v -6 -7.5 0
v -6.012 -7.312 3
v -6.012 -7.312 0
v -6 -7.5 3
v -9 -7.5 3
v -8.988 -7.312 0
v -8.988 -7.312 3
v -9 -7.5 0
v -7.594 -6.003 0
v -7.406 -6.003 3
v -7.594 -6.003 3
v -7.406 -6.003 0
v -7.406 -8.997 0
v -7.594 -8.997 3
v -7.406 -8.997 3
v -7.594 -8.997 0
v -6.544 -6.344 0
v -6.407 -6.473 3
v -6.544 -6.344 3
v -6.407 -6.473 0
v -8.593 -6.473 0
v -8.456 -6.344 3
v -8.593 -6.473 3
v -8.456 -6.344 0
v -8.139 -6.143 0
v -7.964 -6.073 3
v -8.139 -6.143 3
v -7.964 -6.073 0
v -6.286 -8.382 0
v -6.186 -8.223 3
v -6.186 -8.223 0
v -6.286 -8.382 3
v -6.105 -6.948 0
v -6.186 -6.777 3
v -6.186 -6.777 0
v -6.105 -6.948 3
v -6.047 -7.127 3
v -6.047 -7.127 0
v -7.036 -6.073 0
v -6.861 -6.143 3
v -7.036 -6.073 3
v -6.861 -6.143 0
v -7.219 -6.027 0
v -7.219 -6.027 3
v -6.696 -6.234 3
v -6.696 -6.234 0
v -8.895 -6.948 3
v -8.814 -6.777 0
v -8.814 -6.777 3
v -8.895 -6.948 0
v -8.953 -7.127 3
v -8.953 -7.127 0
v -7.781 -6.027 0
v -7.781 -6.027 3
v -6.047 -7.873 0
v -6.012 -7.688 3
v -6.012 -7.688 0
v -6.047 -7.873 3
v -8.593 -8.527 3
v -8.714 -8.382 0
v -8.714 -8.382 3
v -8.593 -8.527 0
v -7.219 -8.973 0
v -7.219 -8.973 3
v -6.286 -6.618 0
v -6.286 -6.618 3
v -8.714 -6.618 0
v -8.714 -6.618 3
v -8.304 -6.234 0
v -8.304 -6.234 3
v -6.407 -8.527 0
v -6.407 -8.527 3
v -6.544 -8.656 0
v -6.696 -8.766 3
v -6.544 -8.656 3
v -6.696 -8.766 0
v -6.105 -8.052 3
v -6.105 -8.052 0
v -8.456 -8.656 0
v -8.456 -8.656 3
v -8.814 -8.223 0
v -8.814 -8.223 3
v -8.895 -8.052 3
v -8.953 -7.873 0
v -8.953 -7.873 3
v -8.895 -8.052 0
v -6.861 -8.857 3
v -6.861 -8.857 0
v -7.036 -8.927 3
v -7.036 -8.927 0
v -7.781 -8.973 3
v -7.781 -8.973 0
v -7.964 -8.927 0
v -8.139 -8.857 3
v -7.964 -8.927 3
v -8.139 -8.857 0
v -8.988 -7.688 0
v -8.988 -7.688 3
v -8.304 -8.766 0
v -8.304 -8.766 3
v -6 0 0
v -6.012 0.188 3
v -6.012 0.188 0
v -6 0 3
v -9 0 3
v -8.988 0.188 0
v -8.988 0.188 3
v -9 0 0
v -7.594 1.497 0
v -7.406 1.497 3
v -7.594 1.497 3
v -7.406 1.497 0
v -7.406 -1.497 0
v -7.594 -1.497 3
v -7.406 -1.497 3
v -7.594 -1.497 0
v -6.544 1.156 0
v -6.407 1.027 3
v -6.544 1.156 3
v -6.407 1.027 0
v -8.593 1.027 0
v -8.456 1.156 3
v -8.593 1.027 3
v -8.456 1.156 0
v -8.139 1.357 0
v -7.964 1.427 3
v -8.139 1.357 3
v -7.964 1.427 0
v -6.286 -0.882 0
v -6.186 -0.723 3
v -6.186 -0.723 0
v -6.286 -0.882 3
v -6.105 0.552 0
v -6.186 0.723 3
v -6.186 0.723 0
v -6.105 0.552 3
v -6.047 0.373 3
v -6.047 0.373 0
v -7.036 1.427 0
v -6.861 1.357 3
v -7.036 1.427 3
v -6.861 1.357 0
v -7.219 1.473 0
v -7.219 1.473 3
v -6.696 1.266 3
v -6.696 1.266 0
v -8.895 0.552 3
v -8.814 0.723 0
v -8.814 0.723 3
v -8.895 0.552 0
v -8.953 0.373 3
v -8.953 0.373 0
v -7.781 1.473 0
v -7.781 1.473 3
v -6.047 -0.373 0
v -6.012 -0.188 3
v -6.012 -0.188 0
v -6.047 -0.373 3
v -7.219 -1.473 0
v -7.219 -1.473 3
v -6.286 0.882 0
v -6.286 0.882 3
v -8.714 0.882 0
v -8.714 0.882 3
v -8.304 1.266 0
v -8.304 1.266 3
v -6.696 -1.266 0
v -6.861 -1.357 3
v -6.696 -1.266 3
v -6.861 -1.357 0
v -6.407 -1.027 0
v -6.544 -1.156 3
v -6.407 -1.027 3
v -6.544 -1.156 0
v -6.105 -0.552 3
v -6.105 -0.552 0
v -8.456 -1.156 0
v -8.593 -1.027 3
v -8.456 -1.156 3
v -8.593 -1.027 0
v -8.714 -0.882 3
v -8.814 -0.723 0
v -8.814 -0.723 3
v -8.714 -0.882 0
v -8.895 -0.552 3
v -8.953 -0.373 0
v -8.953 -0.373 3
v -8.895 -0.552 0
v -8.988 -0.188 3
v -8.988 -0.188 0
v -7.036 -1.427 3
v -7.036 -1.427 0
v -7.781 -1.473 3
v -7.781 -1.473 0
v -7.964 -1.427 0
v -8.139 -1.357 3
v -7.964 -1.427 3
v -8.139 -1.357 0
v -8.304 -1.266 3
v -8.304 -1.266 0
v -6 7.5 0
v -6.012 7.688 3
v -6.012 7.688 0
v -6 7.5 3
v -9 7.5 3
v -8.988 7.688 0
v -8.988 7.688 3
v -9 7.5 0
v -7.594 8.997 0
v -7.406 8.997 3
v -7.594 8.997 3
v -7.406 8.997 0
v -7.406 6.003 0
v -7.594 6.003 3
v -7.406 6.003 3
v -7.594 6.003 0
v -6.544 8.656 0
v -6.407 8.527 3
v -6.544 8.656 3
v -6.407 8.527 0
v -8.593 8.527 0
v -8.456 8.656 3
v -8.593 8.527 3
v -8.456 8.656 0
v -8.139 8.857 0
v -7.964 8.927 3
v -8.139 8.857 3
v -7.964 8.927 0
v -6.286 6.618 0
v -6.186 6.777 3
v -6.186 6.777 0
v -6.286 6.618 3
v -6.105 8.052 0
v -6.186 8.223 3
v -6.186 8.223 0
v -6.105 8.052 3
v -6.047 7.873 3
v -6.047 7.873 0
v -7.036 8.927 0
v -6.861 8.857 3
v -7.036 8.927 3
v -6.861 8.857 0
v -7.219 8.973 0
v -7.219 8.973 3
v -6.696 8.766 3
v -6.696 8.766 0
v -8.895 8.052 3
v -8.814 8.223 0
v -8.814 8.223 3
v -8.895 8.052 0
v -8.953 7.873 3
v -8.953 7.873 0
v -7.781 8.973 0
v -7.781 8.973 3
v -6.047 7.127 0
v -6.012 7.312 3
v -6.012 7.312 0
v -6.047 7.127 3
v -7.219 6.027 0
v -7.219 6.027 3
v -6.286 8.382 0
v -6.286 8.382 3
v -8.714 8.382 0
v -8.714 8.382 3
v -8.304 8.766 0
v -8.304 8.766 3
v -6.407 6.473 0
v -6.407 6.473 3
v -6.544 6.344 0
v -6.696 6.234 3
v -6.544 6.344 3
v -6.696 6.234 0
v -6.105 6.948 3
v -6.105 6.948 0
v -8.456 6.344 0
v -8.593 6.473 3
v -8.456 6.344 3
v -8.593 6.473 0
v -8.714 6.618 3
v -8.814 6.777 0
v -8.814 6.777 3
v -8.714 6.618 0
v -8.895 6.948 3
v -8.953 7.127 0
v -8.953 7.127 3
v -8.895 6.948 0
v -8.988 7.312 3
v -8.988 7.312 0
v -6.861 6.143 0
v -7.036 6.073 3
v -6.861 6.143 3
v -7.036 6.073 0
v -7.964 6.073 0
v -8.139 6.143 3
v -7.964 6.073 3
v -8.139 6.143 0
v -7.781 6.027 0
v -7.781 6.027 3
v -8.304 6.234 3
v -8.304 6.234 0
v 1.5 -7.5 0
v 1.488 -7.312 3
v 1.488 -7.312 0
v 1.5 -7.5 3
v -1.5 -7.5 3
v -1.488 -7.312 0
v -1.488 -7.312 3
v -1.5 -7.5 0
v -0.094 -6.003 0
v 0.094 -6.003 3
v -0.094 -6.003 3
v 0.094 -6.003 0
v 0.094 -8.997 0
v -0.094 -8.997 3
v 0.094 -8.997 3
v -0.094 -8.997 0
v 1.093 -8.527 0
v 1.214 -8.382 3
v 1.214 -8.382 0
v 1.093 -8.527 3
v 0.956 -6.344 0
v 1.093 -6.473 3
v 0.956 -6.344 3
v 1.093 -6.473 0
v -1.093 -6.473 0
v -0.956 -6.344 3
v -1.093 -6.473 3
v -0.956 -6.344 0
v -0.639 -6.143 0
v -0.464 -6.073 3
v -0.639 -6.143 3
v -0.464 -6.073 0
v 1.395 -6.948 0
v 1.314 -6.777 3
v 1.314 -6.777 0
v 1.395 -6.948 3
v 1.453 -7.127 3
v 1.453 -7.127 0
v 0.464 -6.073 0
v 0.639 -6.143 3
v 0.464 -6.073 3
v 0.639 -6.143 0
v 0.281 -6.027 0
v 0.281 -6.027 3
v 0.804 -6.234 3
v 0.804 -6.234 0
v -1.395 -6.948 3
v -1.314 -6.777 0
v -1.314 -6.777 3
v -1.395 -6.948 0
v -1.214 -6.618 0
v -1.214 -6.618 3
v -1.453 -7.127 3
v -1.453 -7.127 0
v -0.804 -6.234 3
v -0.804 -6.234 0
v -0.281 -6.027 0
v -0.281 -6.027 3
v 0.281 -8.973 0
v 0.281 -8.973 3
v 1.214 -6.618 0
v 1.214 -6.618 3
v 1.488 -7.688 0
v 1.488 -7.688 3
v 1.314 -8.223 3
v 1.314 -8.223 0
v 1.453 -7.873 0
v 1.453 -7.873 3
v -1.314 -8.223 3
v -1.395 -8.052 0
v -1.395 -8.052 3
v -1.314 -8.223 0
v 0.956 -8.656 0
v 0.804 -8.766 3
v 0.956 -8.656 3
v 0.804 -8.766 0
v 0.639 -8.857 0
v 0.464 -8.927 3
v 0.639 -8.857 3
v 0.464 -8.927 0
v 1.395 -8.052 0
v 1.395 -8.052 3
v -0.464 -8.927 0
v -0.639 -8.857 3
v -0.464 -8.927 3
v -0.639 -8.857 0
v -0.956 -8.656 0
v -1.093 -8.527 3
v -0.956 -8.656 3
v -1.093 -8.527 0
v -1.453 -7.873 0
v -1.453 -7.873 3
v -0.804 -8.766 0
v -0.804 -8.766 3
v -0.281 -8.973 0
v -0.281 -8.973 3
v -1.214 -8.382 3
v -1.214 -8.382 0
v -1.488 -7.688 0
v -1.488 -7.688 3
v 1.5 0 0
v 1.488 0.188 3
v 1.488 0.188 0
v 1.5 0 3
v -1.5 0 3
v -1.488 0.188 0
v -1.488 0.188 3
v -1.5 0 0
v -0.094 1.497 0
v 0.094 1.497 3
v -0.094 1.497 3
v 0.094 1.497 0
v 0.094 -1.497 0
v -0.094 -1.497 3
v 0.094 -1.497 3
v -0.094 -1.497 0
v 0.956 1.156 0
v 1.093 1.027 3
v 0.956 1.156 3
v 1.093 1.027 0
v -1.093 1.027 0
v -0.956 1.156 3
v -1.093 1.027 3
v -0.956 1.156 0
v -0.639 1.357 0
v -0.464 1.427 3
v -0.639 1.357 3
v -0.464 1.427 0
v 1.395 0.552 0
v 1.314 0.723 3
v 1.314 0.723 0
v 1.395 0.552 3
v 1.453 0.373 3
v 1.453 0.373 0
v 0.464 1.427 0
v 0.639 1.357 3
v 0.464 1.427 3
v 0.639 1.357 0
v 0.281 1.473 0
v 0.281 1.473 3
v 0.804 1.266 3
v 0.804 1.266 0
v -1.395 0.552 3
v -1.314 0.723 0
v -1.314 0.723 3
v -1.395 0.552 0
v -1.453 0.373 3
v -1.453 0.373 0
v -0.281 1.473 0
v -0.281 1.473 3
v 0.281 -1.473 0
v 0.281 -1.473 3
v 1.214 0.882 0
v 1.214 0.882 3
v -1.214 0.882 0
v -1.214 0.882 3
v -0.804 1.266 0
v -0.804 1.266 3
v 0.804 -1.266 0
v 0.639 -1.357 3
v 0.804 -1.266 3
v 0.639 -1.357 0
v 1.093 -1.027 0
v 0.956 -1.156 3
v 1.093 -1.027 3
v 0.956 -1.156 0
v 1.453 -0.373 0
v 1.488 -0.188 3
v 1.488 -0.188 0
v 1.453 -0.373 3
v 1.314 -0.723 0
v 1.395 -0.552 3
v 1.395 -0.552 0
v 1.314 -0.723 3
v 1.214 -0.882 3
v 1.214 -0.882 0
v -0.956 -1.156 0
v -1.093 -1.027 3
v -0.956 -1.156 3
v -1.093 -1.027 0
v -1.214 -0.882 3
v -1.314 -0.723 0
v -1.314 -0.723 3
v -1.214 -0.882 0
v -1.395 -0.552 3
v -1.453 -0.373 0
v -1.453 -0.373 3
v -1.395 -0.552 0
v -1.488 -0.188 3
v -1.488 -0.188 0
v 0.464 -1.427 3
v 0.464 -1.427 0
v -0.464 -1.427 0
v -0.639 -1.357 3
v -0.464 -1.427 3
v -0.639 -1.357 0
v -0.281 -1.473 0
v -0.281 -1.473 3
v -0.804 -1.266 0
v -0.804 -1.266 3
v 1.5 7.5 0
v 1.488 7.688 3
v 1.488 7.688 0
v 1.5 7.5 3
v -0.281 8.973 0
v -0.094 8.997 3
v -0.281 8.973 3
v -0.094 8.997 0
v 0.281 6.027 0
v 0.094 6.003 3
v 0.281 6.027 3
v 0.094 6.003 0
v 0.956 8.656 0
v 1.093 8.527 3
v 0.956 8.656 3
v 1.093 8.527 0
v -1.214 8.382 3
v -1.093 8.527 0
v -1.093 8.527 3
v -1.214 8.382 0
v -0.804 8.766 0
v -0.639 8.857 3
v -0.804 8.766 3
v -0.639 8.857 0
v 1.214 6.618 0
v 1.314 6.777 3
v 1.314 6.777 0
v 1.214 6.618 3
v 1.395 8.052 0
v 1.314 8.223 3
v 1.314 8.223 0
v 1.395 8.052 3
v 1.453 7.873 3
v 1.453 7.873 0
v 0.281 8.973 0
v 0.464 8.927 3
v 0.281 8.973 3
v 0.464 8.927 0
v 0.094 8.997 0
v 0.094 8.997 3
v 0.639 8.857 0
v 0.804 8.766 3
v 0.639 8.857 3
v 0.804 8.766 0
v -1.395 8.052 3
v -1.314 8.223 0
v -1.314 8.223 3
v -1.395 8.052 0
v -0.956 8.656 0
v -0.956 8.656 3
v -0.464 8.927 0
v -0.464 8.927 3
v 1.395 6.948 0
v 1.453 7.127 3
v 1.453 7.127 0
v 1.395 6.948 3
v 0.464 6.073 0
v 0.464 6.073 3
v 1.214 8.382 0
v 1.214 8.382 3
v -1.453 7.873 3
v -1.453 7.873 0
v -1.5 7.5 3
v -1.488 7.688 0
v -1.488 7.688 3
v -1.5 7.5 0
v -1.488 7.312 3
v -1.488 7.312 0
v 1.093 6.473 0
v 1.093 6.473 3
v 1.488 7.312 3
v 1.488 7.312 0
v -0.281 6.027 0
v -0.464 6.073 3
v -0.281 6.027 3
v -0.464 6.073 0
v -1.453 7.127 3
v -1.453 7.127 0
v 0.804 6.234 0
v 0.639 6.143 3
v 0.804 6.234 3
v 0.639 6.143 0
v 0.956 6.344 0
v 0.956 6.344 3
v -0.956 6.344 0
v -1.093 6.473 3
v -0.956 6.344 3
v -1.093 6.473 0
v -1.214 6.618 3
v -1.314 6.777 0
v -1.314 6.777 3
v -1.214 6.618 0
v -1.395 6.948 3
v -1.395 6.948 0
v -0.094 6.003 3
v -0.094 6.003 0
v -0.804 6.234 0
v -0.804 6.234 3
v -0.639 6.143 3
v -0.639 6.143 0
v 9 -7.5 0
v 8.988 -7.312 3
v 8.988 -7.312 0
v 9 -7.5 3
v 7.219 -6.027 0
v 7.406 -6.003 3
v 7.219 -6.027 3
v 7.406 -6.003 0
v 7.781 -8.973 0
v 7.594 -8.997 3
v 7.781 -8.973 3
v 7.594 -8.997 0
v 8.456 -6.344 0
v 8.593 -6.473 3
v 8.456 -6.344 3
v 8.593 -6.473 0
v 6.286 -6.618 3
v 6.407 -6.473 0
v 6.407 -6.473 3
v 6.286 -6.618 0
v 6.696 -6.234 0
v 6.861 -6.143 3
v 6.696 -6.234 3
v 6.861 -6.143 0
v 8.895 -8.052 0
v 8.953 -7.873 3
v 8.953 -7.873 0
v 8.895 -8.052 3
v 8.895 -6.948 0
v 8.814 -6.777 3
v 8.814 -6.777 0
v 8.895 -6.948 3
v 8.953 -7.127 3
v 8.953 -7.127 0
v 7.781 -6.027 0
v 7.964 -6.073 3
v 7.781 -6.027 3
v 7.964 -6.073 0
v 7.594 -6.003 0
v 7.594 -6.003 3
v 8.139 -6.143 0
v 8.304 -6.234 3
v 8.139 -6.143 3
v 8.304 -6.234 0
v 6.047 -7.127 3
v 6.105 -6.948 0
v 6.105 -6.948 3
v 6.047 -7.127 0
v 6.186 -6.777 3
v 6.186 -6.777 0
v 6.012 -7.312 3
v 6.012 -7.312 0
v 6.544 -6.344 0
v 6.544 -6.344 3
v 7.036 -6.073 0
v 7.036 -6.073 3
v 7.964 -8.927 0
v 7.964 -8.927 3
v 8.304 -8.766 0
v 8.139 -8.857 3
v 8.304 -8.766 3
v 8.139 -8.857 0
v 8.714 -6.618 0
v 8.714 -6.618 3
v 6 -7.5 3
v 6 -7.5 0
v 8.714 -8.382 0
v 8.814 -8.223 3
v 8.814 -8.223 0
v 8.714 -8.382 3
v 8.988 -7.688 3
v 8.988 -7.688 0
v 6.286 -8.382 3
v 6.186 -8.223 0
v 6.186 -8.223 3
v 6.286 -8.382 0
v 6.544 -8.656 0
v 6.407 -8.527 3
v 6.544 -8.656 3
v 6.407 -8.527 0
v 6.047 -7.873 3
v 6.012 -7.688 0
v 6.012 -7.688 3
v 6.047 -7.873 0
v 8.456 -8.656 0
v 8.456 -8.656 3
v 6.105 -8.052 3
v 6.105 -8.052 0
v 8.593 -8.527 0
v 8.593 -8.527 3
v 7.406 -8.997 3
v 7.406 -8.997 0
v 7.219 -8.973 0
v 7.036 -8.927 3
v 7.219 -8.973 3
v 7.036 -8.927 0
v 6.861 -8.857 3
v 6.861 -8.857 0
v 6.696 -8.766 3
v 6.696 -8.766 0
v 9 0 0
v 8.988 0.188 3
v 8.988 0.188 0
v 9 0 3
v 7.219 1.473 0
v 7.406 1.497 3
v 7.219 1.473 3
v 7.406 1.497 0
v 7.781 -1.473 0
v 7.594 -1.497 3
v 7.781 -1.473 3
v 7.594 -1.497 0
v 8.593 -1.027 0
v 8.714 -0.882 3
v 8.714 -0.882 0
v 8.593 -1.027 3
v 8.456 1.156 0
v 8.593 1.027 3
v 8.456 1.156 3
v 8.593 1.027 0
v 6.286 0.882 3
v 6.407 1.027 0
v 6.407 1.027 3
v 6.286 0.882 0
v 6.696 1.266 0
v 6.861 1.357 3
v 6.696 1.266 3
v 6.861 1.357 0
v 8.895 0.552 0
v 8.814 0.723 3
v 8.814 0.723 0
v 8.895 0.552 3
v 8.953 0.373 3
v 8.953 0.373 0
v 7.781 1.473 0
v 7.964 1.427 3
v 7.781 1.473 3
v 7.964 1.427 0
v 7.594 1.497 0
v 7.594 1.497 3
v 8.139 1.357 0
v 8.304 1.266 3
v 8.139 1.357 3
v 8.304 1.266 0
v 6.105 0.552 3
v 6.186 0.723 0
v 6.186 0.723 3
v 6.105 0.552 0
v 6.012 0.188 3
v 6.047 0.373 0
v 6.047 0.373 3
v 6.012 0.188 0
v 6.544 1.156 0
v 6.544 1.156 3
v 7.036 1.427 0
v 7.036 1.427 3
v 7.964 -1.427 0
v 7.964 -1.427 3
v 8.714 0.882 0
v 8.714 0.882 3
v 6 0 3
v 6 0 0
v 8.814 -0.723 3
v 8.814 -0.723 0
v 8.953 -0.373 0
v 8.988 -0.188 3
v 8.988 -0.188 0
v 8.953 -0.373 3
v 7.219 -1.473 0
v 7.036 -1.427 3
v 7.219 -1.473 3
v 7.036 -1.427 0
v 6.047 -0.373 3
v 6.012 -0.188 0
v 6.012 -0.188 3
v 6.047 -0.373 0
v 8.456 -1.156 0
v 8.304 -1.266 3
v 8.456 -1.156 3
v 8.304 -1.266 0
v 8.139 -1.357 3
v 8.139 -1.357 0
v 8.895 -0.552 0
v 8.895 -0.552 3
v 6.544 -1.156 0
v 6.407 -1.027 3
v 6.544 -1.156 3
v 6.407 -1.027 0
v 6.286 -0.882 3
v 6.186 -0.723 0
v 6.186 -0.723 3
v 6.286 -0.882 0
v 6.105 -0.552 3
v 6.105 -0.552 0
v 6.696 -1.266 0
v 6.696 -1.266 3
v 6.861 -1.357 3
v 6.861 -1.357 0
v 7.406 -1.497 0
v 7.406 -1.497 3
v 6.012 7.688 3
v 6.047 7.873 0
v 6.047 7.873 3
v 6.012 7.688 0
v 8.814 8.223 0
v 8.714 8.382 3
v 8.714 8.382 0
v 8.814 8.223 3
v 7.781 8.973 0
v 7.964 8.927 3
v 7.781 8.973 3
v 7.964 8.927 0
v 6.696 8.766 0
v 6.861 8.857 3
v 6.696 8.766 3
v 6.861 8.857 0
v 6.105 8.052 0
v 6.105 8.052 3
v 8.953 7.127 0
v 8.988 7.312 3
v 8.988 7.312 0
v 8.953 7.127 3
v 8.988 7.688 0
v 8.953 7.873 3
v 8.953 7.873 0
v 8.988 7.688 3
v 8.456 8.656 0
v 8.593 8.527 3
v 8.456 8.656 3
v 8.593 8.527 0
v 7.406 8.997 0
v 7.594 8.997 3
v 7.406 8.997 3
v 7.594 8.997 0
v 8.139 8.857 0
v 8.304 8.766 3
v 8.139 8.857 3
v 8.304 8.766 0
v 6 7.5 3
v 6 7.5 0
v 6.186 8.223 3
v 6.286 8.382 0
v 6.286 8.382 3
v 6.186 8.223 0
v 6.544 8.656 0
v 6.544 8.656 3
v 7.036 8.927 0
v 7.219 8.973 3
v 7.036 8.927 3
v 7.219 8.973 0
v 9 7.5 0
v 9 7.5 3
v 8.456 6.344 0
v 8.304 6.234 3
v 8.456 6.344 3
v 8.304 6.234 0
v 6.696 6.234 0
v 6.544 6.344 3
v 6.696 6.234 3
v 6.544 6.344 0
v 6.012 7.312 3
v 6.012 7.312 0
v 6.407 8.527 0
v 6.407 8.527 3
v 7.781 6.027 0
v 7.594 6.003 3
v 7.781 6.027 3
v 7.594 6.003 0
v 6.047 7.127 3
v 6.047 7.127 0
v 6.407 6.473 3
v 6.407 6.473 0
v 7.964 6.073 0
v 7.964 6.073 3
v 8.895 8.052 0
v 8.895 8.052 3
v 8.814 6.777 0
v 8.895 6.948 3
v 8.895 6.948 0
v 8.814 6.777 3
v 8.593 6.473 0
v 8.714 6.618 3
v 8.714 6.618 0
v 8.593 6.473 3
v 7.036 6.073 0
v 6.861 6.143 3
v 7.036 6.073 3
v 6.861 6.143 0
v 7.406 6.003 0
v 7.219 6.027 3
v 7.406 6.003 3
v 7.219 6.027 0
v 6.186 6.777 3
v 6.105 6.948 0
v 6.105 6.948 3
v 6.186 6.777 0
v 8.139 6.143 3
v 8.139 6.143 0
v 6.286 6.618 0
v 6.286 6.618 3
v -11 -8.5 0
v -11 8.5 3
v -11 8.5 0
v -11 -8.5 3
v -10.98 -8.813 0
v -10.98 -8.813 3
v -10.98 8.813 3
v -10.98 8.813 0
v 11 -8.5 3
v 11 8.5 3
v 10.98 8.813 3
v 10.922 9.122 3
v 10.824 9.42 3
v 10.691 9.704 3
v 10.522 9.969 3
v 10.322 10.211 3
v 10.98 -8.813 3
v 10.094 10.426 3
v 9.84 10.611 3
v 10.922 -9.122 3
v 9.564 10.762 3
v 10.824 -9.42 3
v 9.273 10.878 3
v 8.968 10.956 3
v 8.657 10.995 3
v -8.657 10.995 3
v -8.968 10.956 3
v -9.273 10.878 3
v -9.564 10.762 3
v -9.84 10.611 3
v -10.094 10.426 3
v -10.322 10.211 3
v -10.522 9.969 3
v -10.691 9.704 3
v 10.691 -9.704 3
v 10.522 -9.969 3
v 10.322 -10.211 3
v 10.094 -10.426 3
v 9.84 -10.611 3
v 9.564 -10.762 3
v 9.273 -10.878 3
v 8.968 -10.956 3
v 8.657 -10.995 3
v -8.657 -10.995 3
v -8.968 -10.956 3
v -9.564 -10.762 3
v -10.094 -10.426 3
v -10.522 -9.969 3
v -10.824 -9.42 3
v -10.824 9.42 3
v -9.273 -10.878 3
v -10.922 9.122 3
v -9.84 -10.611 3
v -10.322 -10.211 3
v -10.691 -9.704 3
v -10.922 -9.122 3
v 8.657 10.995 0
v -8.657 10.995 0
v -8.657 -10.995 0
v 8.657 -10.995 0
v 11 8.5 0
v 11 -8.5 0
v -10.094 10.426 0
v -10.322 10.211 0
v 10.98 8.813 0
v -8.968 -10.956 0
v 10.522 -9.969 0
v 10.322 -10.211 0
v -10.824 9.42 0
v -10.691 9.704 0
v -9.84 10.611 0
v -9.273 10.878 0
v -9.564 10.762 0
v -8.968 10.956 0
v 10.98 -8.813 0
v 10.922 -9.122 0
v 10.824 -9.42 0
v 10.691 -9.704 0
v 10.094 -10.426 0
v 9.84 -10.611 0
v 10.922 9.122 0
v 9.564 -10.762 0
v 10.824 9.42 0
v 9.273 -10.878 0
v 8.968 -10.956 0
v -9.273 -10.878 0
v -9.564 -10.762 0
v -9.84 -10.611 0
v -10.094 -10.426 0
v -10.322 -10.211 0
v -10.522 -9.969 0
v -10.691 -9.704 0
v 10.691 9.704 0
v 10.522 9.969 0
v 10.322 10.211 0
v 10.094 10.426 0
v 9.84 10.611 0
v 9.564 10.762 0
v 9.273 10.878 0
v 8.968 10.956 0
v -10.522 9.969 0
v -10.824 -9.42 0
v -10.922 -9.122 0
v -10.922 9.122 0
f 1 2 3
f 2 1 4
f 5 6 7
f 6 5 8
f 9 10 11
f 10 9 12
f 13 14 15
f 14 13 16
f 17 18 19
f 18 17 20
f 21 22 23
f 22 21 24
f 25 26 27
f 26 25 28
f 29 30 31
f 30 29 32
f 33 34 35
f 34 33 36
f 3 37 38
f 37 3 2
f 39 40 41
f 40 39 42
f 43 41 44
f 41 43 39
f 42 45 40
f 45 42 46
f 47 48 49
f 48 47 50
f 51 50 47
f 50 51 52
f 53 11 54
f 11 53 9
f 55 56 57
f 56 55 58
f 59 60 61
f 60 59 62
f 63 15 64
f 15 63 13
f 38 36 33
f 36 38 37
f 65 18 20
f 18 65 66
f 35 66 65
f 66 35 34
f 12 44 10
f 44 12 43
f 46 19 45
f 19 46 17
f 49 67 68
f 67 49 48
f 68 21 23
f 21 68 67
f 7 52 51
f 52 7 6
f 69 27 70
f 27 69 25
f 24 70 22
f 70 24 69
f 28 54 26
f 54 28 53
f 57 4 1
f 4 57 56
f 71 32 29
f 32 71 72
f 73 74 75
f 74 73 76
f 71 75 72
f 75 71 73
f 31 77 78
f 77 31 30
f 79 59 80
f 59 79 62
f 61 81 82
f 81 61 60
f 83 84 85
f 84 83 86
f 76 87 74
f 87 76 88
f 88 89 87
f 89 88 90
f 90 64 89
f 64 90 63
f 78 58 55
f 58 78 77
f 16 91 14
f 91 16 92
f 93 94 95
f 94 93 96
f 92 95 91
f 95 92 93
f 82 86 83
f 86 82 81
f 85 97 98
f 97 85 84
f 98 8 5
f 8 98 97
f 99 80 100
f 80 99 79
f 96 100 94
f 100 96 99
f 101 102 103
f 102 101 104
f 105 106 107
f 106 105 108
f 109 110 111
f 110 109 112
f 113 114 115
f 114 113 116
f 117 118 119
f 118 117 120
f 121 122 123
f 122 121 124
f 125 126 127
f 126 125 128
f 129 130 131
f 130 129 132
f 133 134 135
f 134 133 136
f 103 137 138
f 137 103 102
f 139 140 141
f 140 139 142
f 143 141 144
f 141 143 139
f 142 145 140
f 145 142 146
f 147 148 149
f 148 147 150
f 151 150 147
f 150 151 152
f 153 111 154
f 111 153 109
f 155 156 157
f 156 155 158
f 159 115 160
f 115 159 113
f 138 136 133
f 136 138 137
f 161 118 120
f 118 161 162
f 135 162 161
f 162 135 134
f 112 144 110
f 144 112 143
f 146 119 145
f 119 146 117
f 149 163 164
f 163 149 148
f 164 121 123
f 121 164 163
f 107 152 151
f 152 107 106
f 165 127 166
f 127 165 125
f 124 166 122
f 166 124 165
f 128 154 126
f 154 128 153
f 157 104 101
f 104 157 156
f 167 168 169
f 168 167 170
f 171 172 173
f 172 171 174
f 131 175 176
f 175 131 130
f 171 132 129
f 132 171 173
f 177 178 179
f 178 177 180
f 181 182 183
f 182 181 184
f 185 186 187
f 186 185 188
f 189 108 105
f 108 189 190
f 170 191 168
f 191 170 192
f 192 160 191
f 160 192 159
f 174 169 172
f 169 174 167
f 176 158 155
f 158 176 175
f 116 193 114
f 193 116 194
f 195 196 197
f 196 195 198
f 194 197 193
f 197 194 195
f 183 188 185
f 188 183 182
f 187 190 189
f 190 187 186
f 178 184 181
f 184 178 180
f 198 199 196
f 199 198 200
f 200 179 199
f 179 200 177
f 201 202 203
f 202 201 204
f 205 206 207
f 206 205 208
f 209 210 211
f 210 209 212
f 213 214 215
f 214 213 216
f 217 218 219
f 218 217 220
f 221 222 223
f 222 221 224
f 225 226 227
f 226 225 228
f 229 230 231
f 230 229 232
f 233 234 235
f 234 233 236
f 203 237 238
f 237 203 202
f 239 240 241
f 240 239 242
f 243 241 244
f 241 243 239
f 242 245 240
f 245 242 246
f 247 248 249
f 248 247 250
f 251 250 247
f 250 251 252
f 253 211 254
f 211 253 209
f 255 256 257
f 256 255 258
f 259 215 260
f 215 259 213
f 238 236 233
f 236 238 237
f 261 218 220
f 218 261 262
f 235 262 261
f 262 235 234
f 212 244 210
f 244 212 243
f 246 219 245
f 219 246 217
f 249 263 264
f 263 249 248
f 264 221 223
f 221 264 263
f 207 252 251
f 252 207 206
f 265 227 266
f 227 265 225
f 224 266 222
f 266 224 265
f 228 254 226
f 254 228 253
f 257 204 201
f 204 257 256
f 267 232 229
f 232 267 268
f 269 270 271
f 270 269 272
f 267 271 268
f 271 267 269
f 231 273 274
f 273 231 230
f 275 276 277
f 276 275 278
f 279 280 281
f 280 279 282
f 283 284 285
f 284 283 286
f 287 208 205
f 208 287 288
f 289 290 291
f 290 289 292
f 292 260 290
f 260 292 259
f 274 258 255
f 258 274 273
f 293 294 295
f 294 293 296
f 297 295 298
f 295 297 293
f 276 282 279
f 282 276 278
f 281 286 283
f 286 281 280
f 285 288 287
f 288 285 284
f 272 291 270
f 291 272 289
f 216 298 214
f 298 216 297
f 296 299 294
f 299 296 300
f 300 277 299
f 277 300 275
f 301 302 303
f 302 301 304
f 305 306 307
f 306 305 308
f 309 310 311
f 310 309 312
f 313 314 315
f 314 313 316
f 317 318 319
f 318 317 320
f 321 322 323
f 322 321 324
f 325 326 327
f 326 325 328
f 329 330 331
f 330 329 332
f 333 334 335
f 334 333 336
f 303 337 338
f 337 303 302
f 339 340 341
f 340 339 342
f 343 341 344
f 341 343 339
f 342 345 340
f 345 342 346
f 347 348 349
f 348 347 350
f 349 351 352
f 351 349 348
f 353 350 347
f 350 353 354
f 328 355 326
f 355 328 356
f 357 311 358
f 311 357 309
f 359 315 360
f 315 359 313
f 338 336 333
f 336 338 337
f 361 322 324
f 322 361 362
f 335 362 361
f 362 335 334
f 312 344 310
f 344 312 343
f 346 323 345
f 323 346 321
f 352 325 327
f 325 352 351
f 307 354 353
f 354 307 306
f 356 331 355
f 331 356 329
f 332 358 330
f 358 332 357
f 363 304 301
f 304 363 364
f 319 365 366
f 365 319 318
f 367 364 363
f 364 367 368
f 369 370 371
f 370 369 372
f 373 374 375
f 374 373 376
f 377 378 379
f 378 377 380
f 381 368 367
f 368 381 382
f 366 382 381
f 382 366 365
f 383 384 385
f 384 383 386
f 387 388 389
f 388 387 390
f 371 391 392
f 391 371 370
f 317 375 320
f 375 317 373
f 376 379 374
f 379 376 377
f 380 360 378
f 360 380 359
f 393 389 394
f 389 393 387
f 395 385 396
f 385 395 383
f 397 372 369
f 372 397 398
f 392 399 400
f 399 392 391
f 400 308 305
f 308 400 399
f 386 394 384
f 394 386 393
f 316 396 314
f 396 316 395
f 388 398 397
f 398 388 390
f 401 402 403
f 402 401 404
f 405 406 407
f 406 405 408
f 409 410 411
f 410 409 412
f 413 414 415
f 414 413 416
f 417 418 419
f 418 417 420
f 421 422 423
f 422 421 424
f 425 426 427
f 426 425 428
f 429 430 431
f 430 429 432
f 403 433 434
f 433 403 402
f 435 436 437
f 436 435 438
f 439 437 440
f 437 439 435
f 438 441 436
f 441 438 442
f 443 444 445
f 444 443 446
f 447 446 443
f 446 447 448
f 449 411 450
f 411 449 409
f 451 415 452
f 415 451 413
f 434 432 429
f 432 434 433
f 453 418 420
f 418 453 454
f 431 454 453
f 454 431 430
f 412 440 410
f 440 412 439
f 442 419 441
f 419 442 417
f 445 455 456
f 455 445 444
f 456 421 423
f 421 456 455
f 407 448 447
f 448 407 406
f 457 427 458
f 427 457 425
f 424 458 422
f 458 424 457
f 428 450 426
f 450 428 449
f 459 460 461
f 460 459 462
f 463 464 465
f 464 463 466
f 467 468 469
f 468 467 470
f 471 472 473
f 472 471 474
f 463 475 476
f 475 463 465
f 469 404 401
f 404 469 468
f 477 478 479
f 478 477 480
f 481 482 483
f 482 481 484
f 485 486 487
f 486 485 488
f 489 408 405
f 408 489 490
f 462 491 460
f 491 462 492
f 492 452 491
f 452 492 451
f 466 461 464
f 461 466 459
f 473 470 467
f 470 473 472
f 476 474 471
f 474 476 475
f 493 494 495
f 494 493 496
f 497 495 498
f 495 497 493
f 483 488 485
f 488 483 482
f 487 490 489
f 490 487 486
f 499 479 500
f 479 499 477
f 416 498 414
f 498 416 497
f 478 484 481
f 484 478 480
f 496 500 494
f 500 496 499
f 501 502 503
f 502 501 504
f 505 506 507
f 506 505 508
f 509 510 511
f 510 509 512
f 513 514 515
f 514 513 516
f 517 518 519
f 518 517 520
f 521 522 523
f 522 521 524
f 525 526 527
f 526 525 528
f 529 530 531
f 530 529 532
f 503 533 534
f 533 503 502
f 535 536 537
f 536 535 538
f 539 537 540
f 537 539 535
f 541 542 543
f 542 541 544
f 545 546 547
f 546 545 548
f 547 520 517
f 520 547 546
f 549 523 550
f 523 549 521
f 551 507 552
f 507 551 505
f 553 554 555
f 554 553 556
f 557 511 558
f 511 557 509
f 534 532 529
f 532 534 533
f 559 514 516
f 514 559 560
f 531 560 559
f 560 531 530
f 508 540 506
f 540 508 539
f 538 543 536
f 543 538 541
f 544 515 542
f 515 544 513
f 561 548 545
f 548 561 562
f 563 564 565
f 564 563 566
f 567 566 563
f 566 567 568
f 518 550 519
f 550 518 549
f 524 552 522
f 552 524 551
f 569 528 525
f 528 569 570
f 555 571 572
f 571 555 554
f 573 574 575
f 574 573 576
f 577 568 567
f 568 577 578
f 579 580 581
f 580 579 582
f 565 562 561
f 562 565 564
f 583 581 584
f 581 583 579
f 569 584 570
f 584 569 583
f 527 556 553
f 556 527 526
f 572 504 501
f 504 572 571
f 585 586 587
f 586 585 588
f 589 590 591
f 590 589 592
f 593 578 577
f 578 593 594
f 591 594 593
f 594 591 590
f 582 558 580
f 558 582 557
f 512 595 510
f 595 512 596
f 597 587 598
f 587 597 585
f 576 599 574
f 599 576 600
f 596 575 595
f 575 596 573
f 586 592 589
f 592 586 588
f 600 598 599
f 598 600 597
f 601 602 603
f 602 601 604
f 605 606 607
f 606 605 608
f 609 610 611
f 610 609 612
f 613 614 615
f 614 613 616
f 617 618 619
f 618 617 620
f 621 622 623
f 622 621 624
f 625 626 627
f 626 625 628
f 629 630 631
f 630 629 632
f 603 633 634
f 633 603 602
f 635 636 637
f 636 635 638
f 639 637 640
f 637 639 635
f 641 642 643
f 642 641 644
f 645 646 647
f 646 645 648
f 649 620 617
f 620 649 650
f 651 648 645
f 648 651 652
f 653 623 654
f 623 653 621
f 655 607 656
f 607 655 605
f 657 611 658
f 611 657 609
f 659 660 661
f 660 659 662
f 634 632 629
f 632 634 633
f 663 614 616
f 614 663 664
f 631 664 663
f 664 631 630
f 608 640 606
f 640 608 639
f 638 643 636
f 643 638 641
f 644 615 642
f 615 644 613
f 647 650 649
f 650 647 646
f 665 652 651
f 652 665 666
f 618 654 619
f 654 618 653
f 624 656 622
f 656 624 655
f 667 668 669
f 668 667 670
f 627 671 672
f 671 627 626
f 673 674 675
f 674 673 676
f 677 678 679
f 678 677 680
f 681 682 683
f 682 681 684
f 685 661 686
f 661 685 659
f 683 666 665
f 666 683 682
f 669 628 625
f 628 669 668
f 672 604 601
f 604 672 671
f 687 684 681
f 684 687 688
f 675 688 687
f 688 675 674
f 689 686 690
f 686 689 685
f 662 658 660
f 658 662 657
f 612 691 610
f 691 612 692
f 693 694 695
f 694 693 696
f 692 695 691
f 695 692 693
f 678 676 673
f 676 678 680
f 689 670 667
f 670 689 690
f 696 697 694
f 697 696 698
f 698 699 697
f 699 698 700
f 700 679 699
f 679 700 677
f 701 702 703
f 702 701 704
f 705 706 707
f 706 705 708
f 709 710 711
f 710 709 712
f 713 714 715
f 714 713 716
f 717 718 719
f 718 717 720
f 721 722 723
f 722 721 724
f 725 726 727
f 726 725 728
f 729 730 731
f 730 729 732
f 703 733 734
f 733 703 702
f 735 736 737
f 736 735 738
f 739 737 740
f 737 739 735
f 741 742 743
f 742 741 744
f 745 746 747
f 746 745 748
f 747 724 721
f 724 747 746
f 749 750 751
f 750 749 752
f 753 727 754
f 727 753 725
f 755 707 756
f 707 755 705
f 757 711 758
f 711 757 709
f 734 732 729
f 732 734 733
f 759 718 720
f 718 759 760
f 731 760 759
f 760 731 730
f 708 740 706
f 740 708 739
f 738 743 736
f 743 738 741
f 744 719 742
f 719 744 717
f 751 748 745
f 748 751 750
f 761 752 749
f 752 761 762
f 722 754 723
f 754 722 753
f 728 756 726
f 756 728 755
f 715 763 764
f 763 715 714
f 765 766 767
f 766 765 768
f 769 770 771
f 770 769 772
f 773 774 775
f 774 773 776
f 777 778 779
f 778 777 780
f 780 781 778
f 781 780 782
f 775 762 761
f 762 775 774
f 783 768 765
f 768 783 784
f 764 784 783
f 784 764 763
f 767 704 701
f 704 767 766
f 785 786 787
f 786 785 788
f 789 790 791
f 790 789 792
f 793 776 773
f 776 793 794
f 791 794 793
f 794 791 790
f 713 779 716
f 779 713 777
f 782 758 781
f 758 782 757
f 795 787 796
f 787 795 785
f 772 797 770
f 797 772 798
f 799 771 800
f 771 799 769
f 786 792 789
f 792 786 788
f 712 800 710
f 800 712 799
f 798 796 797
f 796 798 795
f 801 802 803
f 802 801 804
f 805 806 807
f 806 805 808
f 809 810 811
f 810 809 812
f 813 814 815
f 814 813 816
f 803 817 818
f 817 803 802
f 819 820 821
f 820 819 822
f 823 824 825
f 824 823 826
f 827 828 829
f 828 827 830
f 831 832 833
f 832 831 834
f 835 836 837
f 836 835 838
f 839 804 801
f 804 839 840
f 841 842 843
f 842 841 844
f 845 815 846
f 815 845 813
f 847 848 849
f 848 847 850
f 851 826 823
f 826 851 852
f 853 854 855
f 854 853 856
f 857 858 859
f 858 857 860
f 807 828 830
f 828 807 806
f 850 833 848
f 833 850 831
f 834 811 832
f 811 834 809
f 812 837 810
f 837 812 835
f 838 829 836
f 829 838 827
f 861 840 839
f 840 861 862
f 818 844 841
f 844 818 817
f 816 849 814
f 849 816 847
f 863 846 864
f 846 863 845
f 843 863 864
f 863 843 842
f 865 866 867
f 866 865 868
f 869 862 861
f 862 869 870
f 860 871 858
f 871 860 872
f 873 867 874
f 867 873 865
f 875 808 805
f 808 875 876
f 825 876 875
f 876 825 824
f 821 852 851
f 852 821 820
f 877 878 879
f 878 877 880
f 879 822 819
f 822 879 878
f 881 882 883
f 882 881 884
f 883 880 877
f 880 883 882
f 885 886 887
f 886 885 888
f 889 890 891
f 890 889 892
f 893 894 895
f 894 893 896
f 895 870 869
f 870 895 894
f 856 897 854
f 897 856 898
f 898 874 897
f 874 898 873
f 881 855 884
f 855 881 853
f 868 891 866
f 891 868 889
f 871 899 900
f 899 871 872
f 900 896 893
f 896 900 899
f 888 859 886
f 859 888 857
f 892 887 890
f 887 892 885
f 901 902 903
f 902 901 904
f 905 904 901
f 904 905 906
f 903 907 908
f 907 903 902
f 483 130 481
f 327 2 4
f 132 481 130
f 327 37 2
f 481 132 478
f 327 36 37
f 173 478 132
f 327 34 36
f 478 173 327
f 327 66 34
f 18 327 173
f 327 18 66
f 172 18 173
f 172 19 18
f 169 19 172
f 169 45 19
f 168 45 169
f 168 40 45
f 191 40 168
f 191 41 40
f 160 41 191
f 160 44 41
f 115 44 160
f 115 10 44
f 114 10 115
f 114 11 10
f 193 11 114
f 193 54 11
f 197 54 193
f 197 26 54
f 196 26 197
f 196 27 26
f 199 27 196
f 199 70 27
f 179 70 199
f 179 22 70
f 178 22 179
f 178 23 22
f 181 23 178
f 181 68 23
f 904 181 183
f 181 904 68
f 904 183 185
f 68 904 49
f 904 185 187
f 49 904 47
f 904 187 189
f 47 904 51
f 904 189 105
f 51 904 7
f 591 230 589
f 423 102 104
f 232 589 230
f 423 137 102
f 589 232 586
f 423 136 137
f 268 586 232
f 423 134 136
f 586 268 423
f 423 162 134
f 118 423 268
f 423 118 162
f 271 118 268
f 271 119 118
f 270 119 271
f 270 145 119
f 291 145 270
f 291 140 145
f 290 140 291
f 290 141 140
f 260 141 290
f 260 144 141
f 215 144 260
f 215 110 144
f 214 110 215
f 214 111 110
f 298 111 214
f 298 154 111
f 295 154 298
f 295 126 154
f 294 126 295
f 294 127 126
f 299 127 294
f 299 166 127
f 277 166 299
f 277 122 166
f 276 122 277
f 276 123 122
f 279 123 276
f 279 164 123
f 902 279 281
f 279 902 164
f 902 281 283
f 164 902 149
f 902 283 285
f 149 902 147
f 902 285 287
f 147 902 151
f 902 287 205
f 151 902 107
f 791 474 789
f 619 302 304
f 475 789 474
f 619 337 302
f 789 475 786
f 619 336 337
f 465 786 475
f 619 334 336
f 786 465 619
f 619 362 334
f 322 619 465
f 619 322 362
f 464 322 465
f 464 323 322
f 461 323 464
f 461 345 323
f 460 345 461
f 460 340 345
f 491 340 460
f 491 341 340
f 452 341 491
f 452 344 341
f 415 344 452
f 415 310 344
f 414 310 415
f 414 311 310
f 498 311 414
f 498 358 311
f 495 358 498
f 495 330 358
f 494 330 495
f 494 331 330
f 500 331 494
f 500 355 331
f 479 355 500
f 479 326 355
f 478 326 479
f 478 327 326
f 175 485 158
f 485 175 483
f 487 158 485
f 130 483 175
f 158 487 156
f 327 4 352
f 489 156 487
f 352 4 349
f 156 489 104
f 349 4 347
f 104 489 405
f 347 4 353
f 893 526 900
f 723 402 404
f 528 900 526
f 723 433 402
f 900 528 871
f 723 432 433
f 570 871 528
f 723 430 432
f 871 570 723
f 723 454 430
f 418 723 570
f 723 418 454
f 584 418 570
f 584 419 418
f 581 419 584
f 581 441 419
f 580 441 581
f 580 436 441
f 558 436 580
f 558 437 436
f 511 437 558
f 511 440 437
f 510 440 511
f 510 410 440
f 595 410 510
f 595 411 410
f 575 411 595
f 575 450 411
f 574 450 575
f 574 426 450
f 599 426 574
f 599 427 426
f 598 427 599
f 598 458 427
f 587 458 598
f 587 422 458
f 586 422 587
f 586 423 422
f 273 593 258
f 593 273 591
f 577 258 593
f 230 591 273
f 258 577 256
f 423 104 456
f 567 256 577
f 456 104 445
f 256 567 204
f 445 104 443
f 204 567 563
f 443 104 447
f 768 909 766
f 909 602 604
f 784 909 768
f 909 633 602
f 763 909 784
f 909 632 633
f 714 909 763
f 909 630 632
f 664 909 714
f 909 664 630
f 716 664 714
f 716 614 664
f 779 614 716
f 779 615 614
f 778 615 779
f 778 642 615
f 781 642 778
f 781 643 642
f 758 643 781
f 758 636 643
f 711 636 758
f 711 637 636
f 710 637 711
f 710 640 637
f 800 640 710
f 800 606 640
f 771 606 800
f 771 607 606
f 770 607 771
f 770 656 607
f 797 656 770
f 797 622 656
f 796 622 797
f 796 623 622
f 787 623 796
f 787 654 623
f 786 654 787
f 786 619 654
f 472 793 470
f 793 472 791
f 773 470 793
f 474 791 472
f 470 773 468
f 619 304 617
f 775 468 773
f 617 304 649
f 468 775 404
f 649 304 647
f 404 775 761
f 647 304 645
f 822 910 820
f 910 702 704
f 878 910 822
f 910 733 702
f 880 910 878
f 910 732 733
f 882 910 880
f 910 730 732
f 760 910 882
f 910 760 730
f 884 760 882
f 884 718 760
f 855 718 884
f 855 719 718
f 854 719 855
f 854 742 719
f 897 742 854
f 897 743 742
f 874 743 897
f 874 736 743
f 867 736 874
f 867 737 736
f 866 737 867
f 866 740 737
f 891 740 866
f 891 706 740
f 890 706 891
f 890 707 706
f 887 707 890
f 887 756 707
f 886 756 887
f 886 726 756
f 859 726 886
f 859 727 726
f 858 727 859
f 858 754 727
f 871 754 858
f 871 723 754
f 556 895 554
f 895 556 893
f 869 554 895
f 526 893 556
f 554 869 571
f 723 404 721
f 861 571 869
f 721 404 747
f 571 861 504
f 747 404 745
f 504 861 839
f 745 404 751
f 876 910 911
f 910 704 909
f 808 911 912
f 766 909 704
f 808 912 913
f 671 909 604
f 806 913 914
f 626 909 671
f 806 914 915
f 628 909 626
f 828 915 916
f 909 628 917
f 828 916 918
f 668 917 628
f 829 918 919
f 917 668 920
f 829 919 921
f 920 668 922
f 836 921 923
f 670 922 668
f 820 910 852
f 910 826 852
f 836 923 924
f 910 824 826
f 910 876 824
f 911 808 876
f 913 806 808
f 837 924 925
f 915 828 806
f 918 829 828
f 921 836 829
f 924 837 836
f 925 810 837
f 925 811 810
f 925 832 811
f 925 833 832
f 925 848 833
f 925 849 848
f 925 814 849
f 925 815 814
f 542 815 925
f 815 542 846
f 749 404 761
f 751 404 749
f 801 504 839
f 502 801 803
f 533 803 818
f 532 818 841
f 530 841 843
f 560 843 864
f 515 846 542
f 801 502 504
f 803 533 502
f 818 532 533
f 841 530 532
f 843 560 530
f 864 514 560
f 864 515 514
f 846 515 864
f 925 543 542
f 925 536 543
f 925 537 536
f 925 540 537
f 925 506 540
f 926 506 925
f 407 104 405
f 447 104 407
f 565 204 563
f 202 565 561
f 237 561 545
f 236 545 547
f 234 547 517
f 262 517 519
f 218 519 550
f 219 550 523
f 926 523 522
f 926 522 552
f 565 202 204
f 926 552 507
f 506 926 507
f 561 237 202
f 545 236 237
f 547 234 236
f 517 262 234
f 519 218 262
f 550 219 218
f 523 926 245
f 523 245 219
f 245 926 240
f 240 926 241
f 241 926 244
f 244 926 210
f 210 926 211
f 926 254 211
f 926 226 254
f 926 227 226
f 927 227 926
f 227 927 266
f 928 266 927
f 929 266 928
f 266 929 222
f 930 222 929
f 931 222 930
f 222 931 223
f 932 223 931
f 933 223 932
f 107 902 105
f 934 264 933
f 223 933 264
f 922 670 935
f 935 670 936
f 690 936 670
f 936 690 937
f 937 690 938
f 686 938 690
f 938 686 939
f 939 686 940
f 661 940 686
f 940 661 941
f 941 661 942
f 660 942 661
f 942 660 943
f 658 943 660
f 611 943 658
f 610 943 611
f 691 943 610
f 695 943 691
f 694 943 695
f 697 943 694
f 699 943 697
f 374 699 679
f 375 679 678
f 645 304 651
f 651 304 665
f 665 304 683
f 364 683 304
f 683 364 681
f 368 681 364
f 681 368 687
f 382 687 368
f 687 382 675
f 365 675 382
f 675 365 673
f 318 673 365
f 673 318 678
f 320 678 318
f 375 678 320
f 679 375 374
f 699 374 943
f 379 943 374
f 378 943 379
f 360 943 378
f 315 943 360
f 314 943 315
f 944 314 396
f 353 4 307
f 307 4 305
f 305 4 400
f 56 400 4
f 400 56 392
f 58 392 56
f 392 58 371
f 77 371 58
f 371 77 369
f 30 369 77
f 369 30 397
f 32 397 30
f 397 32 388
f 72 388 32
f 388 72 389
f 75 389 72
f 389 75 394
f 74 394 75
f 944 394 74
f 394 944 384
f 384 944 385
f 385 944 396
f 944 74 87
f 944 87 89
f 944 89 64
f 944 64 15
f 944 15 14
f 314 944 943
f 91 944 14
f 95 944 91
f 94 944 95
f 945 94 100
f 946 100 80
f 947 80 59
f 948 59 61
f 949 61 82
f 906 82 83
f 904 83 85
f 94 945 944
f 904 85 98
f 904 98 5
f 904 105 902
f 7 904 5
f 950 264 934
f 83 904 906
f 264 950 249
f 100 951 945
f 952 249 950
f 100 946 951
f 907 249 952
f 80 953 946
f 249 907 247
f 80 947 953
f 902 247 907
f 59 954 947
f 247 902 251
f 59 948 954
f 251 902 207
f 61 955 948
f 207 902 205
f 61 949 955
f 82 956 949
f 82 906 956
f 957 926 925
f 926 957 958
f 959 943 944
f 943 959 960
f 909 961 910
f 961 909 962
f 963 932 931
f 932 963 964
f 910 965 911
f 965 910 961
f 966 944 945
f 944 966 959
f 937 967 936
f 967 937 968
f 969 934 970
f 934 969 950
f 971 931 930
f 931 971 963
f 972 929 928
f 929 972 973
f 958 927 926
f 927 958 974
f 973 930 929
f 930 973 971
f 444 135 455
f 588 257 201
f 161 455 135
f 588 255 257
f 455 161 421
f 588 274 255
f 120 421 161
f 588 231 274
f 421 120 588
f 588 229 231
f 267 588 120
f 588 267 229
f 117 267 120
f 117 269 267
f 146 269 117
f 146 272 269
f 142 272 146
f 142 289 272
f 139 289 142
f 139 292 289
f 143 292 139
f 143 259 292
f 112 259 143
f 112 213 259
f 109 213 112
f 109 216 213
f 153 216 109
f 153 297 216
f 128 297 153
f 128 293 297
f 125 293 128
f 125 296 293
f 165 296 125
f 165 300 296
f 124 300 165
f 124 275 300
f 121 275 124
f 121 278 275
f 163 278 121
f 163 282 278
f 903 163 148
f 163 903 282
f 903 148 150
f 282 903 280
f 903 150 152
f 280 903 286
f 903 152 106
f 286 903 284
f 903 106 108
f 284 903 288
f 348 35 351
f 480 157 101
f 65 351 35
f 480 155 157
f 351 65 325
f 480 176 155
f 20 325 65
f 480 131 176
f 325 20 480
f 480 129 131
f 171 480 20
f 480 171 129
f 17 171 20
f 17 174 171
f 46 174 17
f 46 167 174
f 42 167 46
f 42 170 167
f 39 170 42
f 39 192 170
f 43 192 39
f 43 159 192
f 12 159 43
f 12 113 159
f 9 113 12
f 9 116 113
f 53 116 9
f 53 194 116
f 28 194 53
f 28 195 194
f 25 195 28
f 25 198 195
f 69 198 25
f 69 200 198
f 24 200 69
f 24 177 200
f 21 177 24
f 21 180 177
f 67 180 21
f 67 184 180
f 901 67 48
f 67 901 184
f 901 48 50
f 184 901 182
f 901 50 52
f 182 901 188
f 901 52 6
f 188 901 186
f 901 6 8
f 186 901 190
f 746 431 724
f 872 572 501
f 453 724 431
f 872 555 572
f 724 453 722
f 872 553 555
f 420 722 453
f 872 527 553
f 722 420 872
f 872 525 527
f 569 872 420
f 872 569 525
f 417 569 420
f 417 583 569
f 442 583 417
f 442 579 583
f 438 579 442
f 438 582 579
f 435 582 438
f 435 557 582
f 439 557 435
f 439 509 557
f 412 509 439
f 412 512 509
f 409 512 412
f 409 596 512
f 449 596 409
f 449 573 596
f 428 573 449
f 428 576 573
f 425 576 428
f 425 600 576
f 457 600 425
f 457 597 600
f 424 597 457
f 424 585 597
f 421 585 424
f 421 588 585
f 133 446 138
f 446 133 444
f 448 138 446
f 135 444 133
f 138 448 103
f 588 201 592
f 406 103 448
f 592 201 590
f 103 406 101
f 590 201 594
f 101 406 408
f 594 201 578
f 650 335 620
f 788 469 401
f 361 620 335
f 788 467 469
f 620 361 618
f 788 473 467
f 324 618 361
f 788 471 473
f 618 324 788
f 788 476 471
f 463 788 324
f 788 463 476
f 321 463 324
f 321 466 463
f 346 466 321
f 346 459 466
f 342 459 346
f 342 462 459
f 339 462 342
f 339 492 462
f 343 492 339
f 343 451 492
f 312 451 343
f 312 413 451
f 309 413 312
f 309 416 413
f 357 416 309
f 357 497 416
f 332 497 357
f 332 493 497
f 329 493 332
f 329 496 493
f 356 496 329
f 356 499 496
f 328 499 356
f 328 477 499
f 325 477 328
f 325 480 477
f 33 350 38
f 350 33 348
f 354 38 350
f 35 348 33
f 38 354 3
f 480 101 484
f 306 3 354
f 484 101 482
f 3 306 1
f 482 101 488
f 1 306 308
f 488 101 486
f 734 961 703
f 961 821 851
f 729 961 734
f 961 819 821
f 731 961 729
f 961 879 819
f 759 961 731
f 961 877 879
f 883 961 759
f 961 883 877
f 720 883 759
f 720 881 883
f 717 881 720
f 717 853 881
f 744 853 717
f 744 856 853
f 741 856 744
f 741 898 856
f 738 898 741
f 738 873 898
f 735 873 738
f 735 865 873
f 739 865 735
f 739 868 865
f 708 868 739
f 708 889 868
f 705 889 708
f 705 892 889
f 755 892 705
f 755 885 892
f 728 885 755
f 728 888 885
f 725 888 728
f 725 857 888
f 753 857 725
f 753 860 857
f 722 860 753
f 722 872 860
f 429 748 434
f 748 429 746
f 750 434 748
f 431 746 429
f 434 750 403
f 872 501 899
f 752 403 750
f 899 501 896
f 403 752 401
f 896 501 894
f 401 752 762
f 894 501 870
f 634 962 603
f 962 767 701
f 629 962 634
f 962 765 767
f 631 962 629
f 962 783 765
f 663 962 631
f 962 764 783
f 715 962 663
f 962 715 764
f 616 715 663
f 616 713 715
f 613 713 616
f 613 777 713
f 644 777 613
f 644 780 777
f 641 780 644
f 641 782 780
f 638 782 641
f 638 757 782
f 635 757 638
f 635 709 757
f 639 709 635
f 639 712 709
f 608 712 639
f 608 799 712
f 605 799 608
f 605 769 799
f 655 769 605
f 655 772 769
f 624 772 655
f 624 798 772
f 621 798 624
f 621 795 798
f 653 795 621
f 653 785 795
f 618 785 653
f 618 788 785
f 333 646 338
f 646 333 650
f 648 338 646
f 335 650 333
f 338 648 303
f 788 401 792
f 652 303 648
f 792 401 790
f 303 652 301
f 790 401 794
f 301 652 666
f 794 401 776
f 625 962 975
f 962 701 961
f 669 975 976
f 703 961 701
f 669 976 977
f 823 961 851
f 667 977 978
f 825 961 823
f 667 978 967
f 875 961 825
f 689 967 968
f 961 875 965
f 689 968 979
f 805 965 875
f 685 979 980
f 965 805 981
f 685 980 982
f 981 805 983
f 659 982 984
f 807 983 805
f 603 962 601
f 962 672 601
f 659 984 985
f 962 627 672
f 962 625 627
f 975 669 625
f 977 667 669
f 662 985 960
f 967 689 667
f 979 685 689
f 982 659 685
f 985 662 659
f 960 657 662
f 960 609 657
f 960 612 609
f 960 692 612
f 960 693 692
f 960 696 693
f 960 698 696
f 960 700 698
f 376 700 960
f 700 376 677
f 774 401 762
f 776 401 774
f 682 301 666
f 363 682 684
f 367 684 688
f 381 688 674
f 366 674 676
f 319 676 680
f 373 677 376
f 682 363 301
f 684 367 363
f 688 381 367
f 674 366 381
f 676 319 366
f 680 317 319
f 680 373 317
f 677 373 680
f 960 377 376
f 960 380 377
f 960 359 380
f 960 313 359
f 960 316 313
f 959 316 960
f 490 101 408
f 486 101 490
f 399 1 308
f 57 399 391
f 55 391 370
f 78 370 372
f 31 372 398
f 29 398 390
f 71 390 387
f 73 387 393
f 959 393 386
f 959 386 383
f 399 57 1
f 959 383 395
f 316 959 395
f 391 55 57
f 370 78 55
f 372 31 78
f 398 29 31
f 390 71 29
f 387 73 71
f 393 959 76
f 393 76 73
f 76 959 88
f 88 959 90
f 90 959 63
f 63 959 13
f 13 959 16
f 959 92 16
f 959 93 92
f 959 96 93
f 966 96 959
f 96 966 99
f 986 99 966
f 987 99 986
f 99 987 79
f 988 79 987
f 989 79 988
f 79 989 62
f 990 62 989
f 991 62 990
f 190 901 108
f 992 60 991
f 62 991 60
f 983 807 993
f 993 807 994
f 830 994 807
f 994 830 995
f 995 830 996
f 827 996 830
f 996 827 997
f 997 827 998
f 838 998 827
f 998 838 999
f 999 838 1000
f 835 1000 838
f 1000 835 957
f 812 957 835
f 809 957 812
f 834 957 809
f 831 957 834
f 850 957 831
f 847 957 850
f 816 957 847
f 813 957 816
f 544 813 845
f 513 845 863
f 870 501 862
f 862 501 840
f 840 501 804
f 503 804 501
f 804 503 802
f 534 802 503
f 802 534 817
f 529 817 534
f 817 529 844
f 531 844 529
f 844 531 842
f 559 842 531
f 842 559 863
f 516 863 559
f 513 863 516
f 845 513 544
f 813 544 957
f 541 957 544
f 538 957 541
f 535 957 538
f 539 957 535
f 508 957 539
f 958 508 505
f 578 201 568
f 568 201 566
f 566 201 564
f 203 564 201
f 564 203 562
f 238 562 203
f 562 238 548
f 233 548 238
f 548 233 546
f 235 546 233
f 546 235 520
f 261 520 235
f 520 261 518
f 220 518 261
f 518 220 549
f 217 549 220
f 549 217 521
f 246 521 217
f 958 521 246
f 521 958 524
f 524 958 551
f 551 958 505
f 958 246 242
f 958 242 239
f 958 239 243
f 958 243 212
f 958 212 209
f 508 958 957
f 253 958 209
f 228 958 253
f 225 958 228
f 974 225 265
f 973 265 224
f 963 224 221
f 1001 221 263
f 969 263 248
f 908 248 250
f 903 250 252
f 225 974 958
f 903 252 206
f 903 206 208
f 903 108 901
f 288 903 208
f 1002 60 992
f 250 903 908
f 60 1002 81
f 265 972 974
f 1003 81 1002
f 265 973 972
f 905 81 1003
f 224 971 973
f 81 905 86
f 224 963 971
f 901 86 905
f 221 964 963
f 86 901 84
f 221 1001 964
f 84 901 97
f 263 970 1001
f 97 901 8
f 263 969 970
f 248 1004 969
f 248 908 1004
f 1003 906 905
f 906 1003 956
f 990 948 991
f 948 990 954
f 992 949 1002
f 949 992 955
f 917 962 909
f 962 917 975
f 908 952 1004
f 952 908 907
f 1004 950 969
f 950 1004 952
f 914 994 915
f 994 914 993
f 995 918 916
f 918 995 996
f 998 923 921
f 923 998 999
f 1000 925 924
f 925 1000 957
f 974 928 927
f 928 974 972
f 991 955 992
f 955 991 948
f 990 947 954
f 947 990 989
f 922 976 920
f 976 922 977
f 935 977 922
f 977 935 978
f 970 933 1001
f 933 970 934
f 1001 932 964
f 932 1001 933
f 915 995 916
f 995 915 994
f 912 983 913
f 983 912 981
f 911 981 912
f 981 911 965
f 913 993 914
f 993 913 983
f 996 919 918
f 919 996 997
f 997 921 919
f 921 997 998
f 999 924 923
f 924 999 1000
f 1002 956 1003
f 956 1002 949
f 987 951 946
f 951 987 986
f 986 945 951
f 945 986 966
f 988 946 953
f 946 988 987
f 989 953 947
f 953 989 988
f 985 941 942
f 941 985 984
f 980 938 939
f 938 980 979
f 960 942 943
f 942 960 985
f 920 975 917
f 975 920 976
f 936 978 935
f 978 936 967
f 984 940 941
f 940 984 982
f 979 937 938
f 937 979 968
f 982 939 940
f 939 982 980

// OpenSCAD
$fn = 50;


difference() {
	union() {
		translate(v = [0, 0, 0]) {
			rotate(a = [0, 0, 0]) {
				hull() {
					translate(v = [-8.5000000000, 8.5000000000, 0]) {
						rotate(a = [0, 0, 0]) {
							translate(v = [0, 0, 0]) {
								rotate(a = [0, 0, 0]) {
									cylinder(h = 3, r = 2.5000000000);
								}
							}
						}
					}
					translate(v = [8.5000000000, 8.5000000000, 0]) {
						rotate(a = [0, 0, 0]) {
							translate(v = [0, 0, 0]) {
								rotate(a = [0, 0, 0]) {
									cylinder(h = 3, r = 2.5000000000);
								}
							}
						}
					}
					translate(v = [-8.5000000000, -8.5000000000, 0]) {
						rotate(a = [0, 0, 0]) {
							translate(v = [0, 0, 0]) {
								rotate(a = [0, 0, 0]) {
									cylinder(h = 3, r = 2.5000000000);
								}
							}
						}
					}
					translate(v = [8.5000000000, -8.5000000000, 0]) {
						rotate(a = [0, 0, 0]) {
							translate(v = [0, 0, 0]) {
								rotate(a = [0, 0, 0]) {
									cylinder(h = 3, r = 2.5000000000);
								}
							}
						}
					}
				}
			}
		}
	}
	union() {
		translate(v = [-7.5000000000, -7.5000000000, 0]) {
			rotate(a = [0, 0, 0]) {
				translate(v = [0, 0, -50]) {
					rotate(a = [0, 0, 0]) {
						cylinder(h = 100, r = 1.5000000000);
					}
				}
			}
		}
		translate(v = [-7.5000000000, 0.0000000000, 0]) {
			rotate(a = [0, 0, 0]) {
				translate(v = [0, 0, -50]) {
					rotate(a = [0, 0, 0]) {
						cylinder(h = 100, r = 1.5000000000);
					}
				}
			}
		}
		translate(v = [-7.5000000000, 7.5000000000, 0]) {
			rotate(a = [0, 0, 0]) {
				translate(v = [0, 0, -50]) {
					rotate(a = [0, 0, 0]) {
						cylinder(h = 100, r = 1.5000000000);
					}
				}
			}
		}
		translate(v = [0.0000000000, -7.5000000000, 0]) {
			rotate(a = [0, 0, 0]) {
				translate(v = [0, 0, -50]) {
					rotate(a = [0, 0, 0]) {
						cylinder(h = 100, r = 1.5000000000);
					}
				}
			}
		}
		translate(v = [0.0000000000, 0.0000000000, 0]) {
			rotate(a = [0, 0, 0]) {
				translate(v = [0, 0, -50]) {
					rotate(a = [0, 0, 0]) {
						cylinder(h = 100, r = 1.5000000000);
					}
				}
			}
		}
		translate(v = [0.0000000000, 7.5000000000, 0]) {
			rotate(a = [0, 0, 0]) {
				translate(v = [0, 0, -50]) {
					rotate(a = [0, 0, 0]) {
						cylinder(h = 100, r = 1.5000000000);
					}
				}
			}
		}
		translate(v = [7.5000000000, -7.5000000000, 0]) {
			rotate(a = [0, 0, 0]) {
				translate(v = [0, 0, -50]) {
					rotate(a = [0, 0, 0]) {
						cylinder(h = 100, r = 1.5000000000);
					}
				}
			}
		}
		translate(v = [7.5000000000, 0.0000000000, 0]) {
			rotate(a = [0, 0, 0]) {
				translate(v = [0, 0, -50]) {
					rotate(a = [0, 0, 0]) {
						cylinder(h = 100, r = 1.5000000000);
					}
				}
			}
		}
		translate(v = [7.5000000000, 7.5000000000, 0]) {
			rotate(a = [0, 0, 0]) {
				translate(v = [0, 0, -50]) {
					rotate(a = [0, 0, 0]) {
						cylinder(h = 100, r = 1.5000000000);
					}
				}
			}
		}
	}
}
